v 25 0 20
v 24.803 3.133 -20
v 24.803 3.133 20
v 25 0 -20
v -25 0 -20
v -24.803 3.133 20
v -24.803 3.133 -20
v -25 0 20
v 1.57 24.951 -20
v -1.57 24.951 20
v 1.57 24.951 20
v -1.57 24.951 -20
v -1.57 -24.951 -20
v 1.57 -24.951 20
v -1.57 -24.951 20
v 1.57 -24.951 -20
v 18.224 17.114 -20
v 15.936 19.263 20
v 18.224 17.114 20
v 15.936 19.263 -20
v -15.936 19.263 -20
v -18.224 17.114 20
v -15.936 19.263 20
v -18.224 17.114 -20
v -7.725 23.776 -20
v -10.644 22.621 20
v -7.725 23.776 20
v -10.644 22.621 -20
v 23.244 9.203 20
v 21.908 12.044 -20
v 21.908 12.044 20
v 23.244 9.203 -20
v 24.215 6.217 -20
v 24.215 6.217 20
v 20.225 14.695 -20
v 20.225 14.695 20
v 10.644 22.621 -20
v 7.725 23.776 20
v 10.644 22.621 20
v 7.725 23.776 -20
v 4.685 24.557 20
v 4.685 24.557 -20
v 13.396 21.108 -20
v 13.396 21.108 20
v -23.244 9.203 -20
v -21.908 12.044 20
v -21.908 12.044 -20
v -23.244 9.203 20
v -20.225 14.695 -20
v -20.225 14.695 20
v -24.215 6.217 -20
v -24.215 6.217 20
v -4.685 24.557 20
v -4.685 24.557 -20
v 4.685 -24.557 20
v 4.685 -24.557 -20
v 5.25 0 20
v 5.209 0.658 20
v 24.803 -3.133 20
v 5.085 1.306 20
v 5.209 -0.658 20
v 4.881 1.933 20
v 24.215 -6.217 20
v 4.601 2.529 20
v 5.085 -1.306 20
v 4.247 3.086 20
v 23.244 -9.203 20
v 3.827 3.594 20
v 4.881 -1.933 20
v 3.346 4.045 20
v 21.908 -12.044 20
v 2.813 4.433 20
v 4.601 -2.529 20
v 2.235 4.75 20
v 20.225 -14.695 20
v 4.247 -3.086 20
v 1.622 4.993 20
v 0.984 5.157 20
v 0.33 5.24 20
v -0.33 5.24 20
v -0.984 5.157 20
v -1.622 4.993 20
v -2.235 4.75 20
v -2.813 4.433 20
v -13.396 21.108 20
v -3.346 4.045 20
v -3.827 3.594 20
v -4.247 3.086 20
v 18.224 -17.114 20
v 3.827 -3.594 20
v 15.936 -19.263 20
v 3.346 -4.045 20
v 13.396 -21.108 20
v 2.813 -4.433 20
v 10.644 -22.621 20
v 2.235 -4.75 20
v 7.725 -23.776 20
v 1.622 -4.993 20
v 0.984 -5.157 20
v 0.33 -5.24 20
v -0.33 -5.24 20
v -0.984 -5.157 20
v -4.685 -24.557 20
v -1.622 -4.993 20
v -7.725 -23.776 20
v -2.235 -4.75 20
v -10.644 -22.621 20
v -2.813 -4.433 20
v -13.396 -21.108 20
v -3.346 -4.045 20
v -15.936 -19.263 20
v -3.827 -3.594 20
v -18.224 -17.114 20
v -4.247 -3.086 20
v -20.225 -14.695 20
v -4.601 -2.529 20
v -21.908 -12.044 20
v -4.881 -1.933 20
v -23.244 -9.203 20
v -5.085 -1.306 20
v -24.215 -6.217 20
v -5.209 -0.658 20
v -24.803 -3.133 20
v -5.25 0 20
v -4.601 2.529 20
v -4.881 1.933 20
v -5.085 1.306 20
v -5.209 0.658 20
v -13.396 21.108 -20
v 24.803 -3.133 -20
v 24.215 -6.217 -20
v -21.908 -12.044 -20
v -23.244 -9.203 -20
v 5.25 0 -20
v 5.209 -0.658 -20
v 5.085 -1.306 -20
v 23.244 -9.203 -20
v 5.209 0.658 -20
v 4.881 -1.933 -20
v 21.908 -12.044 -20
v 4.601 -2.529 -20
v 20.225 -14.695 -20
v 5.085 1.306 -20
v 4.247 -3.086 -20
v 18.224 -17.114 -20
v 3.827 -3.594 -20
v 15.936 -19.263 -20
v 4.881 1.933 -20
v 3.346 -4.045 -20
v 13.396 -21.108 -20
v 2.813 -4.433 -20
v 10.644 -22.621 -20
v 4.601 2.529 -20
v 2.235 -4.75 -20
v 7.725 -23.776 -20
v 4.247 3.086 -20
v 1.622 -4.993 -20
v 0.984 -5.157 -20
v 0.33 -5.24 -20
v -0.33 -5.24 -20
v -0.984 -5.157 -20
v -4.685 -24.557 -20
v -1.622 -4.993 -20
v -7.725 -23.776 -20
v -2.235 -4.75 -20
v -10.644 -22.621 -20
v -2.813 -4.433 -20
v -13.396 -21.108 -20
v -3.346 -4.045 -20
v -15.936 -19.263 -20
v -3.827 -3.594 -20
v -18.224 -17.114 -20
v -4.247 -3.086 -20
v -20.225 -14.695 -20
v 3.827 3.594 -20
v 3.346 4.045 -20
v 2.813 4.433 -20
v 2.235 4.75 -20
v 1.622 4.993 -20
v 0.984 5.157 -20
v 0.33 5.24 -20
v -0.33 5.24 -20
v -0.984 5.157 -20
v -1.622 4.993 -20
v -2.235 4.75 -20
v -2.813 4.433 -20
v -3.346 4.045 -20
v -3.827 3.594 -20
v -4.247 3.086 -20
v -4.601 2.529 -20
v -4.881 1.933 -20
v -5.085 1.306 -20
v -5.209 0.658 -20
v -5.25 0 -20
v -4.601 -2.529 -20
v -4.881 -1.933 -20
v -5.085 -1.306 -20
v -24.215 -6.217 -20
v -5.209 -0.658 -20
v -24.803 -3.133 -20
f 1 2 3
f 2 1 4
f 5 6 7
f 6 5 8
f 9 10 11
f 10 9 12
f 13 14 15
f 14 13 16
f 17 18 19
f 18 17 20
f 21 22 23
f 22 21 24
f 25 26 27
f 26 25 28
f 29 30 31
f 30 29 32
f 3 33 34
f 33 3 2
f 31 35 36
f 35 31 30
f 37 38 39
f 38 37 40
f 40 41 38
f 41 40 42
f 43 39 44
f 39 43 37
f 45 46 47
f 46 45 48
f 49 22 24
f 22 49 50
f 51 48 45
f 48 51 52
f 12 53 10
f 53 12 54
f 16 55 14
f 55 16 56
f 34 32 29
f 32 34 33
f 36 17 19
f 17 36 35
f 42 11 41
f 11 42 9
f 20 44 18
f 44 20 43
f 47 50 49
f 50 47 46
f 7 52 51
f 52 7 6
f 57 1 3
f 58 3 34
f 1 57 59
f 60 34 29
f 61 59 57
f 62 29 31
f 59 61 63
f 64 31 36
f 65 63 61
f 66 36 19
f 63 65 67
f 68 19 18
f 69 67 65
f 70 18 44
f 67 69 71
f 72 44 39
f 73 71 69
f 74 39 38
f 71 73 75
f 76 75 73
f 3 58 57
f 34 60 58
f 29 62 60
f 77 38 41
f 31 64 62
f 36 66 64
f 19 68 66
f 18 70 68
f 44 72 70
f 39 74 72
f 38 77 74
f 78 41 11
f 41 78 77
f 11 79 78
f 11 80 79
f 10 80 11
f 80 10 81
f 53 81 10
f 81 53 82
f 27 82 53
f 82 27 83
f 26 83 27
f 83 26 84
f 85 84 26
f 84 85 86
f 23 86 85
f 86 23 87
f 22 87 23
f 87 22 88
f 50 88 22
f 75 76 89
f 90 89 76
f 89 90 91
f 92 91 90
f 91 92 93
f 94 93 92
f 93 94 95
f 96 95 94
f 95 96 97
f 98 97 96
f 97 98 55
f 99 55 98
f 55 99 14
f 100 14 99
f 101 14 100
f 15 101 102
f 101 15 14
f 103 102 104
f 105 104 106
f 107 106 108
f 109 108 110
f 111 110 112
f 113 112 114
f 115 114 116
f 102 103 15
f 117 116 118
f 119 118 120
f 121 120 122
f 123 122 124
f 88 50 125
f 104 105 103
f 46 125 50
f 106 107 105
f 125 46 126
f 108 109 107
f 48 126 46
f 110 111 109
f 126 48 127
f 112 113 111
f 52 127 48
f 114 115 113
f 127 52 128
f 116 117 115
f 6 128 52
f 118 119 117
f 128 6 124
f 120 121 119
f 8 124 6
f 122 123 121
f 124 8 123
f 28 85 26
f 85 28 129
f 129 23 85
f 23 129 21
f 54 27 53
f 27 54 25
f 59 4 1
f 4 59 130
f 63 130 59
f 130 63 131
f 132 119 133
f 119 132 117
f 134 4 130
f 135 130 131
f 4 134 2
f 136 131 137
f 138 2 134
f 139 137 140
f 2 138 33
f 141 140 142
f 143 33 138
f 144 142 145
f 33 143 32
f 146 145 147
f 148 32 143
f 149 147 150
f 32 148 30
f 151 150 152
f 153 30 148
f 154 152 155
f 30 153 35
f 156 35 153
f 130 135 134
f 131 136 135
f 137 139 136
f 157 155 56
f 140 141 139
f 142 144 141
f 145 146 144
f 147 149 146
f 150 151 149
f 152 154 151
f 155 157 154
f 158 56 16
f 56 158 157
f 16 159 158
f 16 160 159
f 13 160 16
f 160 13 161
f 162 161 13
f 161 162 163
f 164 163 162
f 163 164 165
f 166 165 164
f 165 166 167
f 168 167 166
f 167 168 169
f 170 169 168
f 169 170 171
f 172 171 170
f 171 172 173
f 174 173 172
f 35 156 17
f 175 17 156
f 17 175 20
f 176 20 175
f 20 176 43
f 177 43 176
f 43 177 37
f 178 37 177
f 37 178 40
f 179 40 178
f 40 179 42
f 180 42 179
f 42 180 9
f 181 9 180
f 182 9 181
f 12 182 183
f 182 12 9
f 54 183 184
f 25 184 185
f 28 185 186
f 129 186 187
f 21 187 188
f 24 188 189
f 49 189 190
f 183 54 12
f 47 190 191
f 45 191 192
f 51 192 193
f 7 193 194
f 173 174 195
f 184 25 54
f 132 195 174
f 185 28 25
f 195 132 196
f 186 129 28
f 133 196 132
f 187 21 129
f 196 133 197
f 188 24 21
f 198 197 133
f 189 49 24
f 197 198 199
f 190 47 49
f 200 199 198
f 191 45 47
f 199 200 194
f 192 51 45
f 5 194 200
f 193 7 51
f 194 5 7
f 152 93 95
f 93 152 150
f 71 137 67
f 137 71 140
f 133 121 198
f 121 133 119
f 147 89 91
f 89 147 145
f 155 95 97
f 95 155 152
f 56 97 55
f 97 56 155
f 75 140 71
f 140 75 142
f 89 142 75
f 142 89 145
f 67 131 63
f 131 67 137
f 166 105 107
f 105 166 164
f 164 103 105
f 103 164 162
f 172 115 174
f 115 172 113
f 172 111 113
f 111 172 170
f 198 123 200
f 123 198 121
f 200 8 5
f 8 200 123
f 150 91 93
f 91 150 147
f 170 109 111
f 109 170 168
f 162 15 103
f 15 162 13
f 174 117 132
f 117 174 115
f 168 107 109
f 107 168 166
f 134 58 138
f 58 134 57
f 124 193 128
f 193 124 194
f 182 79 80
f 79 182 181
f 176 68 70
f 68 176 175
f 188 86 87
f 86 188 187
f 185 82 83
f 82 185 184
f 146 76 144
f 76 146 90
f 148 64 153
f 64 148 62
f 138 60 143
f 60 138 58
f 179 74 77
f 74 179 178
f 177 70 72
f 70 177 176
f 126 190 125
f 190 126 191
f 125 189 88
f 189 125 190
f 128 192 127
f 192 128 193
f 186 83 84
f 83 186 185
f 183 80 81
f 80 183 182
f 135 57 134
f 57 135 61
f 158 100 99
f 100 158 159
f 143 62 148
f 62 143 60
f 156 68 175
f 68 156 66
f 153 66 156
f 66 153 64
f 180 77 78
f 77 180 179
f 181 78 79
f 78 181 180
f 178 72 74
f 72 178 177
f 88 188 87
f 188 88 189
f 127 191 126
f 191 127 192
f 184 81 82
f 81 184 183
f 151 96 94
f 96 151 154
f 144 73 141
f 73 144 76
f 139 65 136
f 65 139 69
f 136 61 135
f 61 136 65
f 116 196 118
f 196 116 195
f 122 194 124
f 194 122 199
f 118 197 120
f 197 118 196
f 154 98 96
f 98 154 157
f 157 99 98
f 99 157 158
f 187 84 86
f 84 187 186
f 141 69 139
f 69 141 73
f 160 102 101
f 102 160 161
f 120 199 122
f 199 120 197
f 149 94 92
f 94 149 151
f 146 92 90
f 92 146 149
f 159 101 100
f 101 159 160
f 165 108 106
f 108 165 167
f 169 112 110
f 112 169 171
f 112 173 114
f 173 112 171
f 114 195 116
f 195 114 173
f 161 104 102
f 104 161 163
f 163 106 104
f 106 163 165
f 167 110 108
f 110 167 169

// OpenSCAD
$fn = 50;


difference() {
	union() {
		translate(v = [0, 0, -20.0000000000]) {
			cylinder(h = 40, r = 25.0000000000);
		}
	}
	union() {
		translate(v = [0, 0, -100.0000000000]) {
			cylinder(h = 200, r = 5.2500000000);
		}
	}
}
